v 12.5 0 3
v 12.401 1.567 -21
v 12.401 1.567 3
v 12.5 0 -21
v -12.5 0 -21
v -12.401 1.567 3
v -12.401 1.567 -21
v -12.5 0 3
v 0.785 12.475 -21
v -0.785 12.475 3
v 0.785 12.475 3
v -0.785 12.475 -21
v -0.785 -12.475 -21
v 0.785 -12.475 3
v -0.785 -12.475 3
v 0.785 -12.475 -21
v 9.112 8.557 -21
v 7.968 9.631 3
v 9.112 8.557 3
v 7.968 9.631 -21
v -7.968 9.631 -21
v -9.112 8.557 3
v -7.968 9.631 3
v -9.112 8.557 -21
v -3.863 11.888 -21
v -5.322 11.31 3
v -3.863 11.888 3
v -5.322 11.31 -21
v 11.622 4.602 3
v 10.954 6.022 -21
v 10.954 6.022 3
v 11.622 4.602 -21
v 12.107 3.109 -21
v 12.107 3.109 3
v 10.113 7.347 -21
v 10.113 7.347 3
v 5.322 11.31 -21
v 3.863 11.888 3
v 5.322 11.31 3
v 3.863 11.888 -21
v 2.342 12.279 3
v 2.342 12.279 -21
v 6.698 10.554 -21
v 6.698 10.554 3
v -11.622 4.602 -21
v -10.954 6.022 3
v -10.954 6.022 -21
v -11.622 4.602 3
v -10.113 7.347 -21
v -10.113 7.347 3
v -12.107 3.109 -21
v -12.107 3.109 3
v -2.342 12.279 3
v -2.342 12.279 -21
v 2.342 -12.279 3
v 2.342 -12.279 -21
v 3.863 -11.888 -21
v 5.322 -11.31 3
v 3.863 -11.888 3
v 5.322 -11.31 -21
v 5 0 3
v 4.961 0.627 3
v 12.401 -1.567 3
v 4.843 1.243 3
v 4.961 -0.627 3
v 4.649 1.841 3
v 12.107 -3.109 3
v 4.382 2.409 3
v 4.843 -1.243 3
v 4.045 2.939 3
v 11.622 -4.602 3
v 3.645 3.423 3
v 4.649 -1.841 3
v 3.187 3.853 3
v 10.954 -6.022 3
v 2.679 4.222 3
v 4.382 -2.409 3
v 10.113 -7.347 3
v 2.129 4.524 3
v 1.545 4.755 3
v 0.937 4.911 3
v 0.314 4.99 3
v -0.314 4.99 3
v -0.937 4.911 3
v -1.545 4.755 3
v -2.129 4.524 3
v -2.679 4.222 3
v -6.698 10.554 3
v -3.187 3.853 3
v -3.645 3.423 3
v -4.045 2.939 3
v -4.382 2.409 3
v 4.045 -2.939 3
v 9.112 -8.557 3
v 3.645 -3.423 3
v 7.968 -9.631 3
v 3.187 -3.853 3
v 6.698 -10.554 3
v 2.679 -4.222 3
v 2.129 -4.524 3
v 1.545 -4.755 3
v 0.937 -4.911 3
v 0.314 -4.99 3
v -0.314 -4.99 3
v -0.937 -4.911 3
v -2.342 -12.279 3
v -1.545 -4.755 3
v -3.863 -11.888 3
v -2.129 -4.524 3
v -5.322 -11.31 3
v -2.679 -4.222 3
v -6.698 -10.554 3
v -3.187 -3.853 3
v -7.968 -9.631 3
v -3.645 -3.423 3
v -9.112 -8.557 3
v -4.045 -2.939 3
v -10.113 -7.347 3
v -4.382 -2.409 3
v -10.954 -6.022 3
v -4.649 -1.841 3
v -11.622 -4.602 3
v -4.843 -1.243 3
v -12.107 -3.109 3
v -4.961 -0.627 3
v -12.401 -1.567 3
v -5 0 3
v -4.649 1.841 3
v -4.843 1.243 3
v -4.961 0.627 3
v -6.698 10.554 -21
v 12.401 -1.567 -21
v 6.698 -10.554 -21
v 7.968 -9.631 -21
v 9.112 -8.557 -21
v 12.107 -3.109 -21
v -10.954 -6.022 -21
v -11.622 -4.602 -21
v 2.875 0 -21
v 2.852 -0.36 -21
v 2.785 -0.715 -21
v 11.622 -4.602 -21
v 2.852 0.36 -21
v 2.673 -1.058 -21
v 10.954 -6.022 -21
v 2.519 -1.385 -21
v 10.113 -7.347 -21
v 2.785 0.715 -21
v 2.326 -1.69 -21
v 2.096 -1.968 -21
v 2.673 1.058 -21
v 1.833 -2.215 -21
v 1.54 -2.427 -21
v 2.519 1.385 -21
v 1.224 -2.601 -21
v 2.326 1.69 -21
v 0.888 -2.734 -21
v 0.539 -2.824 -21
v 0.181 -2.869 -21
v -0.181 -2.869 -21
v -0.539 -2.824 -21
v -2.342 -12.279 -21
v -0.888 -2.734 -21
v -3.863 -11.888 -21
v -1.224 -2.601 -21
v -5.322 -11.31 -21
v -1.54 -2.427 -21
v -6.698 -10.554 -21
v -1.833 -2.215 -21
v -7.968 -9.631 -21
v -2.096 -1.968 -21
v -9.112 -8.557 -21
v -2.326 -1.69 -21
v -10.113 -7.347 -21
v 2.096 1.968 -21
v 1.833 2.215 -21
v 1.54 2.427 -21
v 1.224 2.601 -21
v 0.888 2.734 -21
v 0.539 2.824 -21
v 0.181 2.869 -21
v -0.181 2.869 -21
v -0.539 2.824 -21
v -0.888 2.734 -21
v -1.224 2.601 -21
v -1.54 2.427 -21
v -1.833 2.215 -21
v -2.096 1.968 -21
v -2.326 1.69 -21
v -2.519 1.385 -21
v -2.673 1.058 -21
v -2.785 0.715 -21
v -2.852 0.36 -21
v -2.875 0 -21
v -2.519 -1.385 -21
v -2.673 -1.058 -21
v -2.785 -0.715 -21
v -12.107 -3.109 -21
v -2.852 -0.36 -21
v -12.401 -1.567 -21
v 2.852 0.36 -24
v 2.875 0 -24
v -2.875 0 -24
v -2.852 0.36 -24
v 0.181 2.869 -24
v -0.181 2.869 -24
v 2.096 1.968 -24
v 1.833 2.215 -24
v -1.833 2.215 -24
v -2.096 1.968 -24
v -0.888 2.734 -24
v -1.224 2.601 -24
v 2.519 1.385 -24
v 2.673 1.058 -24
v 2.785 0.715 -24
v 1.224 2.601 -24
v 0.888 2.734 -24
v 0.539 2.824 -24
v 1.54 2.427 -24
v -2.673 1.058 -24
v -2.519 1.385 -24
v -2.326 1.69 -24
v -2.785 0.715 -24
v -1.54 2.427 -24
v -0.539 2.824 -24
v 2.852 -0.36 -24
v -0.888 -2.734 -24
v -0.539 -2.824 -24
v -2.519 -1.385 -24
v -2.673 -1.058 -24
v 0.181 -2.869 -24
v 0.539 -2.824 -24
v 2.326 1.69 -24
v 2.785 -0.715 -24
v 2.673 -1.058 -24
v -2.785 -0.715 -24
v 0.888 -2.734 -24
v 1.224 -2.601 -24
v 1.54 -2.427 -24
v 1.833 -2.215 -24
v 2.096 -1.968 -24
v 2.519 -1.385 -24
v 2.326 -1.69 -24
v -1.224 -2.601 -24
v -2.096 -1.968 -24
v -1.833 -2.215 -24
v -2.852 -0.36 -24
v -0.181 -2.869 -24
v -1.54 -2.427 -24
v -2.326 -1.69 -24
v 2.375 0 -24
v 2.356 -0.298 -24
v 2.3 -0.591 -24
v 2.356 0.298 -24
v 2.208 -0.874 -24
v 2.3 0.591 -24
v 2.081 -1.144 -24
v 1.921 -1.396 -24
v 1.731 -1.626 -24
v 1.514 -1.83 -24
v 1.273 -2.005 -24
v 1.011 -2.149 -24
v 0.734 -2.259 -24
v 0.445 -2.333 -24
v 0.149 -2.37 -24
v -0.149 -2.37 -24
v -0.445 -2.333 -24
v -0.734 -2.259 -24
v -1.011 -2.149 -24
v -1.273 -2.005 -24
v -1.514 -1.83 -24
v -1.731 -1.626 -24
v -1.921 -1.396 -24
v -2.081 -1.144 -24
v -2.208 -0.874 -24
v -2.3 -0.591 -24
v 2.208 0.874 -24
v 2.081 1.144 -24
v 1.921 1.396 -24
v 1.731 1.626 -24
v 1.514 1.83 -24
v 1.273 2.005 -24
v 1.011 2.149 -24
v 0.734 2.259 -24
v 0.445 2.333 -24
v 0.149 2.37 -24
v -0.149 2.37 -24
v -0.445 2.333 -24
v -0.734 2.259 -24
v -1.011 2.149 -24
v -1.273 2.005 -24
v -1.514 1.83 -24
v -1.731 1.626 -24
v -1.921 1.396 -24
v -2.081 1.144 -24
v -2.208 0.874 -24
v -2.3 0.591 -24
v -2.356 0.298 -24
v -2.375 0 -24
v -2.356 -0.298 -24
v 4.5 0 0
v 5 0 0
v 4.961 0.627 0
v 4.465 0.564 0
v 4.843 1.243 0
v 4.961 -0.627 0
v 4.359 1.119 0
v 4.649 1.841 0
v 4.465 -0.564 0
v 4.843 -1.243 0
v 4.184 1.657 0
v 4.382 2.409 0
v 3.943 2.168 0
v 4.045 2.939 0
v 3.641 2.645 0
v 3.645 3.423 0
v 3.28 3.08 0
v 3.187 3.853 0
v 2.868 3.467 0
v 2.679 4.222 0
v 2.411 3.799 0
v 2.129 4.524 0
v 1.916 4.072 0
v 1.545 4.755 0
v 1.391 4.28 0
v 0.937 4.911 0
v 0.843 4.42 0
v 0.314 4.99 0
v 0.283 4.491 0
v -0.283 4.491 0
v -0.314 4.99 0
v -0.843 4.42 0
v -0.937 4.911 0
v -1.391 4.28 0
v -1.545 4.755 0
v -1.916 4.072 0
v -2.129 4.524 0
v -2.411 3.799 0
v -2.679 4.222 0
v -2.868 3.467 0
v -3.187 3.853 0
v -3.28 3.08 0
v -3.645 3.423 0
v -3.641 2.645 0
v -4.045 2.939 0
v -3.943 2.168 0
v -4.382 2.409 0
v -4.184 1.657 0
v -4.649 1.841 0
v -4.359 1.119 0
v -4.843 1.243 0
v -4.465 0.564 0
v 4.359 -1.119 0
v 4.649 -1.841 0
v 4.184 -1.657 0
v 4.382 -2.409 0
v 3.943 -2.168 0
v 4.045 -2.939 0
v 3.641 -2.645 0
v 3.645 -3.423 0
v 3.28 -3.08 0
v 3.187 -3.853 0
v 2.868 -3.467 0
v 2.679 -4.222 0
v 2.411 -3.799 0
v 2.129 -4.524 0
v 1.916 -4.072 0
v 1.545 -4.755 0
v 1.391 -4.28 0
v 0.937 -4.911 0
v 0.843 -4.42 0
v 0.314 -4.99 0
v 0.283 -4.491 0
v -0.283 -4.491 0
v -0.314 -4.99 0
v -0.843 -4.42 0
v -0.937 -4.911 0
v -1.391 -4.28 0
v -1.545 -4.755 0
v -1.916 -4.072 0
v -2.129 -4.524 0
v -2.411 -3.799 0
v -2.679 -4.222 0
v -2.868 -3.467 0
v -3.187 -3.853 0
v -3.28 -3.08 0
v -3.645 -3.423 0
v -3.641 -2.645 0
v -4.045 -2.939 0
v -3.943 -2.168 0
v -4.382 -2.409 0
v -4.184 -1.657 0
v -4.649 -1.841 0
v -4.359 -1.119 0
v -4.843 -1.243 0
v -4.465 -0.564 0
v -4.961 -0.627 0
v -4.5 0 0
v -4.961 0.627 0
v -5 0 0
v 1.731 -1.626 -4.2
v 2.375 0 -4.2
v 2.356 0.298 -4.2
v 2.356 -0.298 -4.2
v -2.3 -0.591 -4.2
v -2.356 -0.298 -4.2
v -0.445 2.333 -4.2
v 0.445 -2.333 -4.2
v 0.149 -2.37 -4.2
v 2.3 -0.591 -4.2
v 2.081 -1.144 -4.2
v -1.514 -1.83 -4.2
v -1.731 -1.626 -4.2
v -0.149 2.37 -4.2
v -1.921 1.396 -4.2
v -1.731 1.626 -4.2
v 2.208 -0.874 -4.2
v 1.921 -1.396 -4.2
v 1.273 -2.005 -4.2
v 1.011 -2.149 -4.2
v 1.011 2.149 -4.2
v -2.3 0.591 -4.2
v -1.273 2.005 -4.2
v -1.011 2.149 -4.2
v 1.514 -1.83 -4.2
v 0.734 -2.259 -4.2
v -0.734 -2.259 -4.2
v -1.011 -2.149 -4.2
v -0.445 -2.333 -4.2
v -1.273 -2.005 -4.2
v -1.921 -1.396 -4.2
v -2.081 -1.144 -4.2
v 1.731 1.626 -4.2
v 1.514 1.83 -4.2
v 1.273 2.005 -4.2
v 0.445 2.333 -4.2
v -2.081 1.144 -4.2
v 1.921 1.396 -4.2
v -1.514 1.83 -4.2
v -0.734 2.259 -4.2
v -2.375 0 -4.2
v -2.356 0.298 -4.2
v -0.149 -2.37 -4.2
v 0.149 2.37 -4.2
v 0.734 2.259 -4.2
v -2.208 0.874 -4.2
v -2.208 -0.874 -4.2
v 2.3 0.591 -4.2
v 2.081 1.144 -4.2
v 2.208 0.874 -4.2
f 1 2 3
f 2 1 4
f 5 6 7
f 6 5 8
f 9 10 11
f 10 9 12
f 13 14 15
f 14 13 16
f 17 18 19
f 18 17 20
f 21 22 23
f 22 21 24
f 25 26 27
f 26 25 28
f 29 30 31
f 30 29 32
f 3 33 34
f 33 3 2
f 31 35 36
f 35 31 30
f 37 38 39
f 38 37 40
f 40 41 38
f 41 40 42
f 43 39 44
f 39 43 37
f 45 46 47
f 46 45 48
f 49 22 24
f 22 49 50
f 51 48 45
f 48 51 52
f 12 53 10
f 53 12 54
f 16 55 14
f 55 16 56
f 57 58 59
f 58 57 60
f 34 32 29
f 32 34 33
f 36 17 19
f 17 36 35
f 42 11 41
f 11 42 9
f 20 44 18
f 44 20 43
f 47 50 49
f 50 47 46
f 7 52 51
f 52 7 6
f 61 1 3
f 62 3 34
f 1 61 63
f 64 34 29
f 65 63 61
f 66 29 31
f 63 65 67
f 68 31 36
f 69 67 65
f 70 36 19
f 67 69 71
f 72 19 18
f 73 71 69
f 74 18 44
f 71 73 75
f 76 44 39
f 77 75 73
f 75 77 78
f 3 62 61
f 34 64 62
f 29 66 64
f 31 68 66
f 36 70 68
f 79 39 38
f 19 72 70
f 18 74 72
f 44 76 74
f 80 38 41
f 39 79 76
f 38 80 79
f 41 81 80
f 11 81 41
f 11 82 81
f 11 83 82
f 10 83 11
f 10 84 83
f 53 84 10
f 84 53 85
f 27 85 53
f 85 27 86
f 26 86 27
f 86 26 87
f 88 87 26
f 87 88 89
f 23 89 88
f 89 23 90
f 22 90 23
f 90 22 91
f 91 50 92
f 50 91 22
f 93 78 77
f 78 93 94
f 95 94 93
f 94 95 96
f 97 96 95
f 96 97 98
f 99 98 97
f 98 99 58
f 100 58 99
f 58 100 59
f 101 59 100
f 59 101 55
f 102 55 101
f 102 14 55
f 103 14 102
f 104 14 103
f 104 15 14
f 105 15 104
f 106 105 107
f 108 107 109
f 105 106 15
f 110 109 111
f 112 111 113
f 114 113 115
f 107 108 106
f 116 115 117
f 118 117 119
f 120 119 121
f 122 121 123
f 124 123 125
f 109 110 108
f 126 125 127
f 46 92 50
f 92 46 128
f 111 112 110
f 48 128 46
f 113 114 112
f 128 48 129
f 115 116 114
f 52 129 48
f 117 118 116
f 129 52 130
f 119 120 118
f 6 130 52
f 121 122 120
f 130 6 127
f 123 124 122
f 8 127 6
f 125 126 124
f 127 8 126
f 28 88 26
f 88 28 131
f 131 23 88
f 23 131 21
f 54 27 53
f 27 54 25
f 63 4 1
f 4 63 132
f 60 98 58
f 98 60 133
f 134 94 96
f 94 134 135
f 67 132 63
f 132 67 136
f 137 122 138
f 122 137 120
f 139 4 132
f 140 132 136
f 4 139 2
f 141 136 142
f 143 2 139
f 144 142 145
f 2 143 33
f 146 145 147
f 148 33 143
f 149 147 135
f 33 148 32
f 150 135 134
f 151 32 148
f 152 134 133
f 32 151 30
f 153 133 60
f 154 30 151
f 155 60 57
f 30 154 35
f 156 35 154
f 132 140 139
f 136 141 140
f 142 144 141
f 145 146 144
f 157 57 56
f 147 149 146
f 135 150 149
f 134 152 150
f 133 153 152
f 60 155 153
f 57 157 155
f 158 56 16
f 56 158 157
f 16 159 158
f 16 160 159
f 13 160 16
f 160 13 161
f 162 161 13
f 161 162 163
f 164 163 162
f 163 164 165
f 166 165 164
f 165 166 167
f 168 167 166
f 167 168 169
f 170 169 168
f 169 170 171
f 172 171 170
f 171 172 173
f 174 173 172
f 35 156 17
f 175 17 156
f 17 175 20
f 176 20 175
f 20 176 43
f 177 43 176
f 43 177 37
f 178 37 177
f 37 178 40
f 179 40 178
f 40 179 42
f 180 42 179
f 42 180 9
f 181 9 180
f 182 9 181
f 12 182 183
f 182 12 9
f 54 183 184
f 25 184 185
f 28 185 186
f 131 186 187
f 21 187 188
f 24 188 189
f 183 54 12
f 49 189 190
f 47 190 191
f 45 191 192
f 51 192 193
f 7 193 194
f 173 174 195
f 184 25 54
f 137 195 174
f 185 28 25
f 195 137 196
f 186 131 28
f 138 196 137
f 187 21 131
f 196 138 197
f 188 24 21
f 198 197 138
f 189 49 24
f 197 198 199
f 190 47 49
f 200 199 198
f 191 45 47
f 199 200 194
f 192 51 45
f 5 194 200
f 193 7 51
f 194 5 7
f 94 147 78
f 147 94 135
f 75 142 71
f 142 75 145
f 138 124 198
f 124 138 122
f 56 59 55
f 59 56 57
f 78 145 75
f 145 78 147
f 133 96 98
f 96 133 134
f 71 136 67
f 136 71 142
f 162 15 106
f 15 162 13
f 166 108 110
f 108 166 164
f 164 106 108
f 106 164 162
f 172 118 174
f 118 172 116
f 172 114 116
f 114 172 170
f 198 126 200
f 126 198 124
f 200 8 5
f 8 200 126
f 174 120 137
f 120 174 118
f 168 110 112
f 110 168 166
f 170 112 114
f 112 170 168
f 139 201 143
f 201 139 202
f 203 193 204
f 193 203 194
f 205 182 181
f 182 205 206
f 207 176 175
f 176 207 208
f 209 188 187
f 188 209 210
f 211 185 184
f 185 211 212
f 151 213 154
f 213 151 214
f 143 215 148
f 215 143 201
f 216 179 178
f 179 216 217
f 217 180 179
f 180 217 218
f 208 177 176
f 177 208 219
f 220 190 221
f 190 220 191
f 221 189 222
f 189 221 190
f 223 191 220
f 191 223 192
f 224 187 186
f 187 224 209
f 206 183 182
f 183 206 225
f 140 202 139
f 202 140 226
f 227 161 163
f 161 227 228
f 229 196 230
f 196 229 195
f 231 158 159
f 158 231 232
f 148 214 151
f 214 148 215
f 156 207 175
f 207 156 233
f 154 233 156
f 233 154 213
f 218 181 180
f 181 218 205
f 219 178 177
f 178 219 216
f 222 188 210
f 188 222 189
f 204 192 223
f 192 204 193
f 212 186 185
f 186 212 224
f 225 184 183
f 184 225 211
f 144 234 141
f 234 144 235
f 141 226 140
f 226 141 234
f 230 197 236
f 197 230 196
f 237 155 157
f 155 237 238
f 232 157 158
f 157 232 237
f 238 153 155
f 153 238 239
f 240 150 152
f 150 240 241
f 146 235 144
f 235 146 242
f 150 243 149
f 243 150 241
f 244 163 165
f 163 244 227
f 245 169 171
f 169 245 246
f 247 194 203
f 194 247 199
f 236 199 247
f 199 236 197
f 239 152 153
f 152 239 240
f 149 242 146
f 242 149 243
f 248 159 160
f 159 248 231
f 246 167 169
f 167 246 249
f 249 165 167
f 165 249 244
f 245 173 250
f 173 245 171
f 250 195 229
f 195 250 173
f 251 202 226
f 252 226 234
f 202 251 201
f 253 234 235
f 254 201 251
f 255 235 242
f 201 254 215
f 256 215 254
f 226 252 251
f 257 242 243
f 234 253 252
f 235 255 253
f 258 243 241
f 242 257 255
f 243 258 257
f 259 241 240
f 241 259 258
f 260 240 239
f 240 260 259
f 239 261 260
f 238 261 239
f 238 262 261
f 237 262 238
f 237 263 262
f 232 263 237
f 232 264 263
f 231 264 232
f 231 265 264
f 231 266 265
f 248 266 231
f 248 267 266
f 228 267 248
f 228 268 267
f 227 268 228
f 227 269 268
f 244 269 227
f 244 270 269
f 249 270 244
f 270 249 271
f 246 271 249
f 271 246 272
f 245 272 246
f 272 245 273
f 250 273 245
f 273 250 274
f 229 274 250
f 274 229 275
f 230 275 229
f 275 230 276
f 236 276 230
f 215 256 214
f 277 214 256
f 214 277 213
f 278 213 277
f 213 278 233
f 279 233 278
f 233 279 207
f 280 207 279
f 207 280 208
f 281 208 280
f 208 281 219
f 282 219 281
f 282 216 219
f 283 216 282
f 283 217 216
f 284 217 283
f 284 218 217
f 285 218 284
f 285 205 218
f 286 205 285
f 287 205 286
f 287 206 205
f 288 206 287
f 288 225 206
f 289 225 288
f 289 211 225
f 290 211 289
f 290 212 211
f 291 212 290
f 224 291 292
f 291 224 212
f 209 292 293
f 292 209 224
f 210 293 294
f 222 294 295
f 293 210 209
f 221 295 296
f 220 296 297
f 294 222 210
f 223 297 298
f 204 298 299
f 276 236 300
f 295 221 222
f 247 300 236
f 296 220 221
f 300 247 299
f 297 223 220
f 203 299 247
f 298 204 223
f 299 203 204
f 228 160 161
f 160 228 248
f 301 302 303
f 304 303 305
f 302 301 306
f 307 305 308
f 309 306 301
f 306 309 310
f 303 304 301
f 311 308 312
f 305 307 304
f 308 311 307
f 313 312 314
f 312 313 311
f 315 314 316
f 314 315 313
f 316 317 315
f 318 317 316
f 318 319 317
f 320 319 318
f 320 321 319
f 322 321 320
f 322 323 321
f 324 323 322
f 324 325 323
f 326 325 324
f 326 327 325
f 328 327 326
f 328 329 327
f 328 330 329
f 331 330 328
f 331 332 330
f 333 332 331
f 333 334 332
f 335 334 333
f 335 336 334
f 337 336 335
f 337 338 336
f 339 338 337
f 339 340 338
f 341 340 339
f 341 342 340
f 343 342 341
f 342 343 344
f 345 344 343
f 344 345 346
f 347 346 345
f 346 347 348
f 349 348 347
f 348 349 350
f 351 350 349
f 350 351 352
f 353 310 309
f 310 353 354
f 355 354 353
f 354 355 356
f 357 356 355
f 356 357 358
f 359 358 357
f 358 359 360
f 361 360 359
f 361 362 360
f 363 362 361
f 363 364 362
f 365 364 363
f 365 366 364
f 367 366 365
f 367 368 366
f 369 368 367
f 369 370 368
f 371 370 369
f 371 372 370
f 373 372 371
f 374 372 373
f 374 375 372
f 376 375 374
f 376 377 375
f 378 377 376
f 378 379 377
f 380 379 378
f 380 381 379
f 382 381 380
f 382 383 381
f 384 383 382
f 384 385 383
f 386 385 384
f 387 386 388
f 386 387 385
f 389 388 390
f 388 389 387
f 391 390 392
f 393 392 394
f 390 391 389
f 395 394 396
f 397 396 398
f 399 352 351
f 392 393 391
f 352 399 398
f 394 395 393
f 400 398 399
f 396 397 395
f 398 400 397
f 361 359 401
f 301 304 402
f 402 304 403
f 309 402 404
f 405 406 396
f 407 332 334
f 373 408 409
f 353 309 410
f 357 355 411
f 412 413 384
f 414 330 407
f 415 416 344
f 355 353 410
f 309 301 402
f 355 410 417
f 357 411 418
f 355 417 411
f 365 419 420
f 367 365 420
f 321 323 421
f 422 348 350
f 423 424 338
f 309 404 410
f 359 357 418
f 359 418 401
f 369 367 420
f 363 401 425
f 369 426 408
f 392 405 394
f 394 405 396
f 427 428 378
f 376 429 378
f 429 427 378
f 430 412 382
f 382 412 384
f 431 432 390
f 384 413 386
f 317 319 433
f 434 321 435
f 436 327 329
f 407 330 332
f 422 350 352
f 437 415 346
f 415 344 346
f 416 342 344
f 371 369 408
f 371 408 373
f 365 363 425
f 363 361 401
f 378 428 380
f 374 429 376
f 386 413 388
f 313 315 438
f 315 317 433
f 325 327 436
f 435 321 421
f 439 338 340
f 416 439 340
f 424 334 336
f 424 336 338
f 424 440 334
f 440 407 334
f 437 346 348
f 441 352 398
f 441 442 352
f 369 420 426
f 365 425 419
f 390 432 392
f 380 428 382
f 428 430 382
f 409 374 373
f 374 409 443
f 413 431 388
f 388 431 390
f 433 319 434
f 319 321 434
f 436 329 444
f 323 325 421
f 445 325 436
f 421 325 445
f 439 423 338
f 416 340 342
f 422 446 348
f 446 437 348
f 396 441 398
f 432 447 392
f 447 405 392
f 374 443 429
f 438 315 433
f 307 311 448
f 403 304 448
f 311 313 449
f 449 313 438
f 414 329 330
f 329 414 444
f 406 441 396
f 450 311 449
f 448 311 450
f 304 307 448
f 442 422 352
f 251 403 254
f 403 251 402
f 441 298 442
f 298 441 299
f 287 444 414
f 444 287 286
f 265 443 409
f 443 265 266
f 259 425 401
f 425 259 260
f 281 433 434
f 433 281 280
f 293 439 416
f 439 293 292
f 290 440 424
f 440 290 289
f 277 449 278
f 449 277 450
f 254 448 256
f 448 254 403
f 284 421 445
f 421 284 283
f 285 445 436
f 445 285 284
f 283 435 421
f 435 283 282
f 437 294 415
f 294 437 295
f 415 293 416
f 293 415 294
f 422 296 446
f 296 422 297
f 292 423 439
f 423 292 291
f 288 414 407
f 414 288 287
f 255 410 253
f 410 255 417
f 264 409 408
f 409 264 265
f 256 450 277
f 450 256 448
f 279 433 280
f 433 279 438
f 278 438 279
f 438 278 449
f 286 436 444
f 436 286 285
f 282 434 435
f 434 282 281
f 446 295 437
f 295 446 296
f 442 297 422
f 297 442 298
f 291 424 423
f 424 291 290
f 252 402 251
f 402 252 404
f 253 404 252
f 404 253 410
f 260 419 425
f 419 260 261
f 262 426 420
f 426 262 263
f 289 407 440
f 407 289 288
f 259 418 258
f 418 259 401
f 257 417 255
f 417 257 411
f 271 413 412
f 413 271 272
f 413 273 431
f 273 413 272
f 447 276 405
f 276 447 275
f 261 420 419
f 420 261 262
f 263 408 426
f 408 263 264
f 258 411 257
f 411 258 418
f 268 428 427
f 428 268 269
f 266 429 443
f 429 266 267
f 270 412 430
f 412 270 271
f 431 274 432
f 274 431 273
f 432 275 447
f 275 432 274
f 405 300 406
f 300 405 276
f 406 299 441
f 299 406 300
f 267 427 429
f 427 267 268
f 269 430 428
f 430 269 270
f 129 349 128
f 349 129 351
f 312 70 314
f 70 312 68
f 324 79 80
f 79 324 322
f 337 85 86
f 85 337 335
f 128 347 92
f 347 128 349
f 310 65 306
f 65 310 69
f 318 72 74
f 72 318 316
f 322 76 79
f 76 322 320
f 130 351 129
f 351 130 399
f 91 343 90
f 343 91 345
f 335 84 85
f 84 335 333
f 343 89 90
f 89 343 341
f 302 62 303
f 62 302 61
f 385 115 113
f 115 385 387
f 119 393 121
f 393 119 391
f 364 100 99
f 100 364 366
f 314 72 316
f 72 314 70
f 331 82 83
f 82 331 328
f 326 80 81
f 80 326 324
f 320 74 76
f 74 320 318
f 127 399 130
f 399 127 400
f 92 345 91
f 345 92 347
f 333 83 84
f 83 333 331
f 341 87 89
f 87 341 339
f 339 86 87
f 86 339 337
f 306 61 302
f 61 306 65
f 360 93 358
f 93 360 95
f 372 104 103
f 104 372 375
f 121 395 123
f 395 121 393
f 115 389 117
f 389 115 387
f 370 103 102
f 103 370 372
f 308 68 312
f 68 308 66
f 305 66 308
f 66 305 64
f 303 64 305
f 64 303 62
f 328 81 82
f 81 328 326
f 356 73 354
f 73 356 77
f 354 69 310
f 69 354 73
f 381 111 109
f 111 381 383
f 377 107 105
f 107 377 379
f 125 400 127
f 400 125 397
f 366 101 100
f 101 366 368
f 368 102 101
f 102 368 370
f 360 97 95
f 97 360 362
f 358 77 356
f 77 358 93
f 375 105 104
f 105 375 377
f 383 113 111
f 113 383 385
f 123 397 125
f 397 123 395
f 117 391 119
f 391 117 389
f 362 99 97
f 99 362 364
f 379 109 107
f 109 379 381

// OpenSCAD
$fn = 50;

difference() {
	union() {
		translate(v = [0, 0, -21.0]) {
			cylinder(h = 24, r = 12.5);
		}
		#translate(v = [0, 0, -24.0]) {
			cylinder(h = 24, r = 2.875);
		}
	}
	union() {
		translate(v = [0, 0, 0]) {
			rotate(a = [0, 0, 0]) {
				difference() {
					union() {
						translate(v = [0, 0, -24.0]) {
							cylinder(h = 24, r = 2.25);
						}
						translate(v = [0, 0, -4.2]) {
							cylinder(h = 4.2, r1 = 2.375, r2 = 4.5);
						}
						translate(v = [0, 0, -24.0]) {
							cylinder(h = 24, r = 2.375);
						}
						translate(v = [0, 0, -24.0]) {
							cylinder(h = 24, r = 2.25);
						}
					}
					union();
				}
			}
		}
		#cylinder(h = 3, r = 5.0);
	}
}
